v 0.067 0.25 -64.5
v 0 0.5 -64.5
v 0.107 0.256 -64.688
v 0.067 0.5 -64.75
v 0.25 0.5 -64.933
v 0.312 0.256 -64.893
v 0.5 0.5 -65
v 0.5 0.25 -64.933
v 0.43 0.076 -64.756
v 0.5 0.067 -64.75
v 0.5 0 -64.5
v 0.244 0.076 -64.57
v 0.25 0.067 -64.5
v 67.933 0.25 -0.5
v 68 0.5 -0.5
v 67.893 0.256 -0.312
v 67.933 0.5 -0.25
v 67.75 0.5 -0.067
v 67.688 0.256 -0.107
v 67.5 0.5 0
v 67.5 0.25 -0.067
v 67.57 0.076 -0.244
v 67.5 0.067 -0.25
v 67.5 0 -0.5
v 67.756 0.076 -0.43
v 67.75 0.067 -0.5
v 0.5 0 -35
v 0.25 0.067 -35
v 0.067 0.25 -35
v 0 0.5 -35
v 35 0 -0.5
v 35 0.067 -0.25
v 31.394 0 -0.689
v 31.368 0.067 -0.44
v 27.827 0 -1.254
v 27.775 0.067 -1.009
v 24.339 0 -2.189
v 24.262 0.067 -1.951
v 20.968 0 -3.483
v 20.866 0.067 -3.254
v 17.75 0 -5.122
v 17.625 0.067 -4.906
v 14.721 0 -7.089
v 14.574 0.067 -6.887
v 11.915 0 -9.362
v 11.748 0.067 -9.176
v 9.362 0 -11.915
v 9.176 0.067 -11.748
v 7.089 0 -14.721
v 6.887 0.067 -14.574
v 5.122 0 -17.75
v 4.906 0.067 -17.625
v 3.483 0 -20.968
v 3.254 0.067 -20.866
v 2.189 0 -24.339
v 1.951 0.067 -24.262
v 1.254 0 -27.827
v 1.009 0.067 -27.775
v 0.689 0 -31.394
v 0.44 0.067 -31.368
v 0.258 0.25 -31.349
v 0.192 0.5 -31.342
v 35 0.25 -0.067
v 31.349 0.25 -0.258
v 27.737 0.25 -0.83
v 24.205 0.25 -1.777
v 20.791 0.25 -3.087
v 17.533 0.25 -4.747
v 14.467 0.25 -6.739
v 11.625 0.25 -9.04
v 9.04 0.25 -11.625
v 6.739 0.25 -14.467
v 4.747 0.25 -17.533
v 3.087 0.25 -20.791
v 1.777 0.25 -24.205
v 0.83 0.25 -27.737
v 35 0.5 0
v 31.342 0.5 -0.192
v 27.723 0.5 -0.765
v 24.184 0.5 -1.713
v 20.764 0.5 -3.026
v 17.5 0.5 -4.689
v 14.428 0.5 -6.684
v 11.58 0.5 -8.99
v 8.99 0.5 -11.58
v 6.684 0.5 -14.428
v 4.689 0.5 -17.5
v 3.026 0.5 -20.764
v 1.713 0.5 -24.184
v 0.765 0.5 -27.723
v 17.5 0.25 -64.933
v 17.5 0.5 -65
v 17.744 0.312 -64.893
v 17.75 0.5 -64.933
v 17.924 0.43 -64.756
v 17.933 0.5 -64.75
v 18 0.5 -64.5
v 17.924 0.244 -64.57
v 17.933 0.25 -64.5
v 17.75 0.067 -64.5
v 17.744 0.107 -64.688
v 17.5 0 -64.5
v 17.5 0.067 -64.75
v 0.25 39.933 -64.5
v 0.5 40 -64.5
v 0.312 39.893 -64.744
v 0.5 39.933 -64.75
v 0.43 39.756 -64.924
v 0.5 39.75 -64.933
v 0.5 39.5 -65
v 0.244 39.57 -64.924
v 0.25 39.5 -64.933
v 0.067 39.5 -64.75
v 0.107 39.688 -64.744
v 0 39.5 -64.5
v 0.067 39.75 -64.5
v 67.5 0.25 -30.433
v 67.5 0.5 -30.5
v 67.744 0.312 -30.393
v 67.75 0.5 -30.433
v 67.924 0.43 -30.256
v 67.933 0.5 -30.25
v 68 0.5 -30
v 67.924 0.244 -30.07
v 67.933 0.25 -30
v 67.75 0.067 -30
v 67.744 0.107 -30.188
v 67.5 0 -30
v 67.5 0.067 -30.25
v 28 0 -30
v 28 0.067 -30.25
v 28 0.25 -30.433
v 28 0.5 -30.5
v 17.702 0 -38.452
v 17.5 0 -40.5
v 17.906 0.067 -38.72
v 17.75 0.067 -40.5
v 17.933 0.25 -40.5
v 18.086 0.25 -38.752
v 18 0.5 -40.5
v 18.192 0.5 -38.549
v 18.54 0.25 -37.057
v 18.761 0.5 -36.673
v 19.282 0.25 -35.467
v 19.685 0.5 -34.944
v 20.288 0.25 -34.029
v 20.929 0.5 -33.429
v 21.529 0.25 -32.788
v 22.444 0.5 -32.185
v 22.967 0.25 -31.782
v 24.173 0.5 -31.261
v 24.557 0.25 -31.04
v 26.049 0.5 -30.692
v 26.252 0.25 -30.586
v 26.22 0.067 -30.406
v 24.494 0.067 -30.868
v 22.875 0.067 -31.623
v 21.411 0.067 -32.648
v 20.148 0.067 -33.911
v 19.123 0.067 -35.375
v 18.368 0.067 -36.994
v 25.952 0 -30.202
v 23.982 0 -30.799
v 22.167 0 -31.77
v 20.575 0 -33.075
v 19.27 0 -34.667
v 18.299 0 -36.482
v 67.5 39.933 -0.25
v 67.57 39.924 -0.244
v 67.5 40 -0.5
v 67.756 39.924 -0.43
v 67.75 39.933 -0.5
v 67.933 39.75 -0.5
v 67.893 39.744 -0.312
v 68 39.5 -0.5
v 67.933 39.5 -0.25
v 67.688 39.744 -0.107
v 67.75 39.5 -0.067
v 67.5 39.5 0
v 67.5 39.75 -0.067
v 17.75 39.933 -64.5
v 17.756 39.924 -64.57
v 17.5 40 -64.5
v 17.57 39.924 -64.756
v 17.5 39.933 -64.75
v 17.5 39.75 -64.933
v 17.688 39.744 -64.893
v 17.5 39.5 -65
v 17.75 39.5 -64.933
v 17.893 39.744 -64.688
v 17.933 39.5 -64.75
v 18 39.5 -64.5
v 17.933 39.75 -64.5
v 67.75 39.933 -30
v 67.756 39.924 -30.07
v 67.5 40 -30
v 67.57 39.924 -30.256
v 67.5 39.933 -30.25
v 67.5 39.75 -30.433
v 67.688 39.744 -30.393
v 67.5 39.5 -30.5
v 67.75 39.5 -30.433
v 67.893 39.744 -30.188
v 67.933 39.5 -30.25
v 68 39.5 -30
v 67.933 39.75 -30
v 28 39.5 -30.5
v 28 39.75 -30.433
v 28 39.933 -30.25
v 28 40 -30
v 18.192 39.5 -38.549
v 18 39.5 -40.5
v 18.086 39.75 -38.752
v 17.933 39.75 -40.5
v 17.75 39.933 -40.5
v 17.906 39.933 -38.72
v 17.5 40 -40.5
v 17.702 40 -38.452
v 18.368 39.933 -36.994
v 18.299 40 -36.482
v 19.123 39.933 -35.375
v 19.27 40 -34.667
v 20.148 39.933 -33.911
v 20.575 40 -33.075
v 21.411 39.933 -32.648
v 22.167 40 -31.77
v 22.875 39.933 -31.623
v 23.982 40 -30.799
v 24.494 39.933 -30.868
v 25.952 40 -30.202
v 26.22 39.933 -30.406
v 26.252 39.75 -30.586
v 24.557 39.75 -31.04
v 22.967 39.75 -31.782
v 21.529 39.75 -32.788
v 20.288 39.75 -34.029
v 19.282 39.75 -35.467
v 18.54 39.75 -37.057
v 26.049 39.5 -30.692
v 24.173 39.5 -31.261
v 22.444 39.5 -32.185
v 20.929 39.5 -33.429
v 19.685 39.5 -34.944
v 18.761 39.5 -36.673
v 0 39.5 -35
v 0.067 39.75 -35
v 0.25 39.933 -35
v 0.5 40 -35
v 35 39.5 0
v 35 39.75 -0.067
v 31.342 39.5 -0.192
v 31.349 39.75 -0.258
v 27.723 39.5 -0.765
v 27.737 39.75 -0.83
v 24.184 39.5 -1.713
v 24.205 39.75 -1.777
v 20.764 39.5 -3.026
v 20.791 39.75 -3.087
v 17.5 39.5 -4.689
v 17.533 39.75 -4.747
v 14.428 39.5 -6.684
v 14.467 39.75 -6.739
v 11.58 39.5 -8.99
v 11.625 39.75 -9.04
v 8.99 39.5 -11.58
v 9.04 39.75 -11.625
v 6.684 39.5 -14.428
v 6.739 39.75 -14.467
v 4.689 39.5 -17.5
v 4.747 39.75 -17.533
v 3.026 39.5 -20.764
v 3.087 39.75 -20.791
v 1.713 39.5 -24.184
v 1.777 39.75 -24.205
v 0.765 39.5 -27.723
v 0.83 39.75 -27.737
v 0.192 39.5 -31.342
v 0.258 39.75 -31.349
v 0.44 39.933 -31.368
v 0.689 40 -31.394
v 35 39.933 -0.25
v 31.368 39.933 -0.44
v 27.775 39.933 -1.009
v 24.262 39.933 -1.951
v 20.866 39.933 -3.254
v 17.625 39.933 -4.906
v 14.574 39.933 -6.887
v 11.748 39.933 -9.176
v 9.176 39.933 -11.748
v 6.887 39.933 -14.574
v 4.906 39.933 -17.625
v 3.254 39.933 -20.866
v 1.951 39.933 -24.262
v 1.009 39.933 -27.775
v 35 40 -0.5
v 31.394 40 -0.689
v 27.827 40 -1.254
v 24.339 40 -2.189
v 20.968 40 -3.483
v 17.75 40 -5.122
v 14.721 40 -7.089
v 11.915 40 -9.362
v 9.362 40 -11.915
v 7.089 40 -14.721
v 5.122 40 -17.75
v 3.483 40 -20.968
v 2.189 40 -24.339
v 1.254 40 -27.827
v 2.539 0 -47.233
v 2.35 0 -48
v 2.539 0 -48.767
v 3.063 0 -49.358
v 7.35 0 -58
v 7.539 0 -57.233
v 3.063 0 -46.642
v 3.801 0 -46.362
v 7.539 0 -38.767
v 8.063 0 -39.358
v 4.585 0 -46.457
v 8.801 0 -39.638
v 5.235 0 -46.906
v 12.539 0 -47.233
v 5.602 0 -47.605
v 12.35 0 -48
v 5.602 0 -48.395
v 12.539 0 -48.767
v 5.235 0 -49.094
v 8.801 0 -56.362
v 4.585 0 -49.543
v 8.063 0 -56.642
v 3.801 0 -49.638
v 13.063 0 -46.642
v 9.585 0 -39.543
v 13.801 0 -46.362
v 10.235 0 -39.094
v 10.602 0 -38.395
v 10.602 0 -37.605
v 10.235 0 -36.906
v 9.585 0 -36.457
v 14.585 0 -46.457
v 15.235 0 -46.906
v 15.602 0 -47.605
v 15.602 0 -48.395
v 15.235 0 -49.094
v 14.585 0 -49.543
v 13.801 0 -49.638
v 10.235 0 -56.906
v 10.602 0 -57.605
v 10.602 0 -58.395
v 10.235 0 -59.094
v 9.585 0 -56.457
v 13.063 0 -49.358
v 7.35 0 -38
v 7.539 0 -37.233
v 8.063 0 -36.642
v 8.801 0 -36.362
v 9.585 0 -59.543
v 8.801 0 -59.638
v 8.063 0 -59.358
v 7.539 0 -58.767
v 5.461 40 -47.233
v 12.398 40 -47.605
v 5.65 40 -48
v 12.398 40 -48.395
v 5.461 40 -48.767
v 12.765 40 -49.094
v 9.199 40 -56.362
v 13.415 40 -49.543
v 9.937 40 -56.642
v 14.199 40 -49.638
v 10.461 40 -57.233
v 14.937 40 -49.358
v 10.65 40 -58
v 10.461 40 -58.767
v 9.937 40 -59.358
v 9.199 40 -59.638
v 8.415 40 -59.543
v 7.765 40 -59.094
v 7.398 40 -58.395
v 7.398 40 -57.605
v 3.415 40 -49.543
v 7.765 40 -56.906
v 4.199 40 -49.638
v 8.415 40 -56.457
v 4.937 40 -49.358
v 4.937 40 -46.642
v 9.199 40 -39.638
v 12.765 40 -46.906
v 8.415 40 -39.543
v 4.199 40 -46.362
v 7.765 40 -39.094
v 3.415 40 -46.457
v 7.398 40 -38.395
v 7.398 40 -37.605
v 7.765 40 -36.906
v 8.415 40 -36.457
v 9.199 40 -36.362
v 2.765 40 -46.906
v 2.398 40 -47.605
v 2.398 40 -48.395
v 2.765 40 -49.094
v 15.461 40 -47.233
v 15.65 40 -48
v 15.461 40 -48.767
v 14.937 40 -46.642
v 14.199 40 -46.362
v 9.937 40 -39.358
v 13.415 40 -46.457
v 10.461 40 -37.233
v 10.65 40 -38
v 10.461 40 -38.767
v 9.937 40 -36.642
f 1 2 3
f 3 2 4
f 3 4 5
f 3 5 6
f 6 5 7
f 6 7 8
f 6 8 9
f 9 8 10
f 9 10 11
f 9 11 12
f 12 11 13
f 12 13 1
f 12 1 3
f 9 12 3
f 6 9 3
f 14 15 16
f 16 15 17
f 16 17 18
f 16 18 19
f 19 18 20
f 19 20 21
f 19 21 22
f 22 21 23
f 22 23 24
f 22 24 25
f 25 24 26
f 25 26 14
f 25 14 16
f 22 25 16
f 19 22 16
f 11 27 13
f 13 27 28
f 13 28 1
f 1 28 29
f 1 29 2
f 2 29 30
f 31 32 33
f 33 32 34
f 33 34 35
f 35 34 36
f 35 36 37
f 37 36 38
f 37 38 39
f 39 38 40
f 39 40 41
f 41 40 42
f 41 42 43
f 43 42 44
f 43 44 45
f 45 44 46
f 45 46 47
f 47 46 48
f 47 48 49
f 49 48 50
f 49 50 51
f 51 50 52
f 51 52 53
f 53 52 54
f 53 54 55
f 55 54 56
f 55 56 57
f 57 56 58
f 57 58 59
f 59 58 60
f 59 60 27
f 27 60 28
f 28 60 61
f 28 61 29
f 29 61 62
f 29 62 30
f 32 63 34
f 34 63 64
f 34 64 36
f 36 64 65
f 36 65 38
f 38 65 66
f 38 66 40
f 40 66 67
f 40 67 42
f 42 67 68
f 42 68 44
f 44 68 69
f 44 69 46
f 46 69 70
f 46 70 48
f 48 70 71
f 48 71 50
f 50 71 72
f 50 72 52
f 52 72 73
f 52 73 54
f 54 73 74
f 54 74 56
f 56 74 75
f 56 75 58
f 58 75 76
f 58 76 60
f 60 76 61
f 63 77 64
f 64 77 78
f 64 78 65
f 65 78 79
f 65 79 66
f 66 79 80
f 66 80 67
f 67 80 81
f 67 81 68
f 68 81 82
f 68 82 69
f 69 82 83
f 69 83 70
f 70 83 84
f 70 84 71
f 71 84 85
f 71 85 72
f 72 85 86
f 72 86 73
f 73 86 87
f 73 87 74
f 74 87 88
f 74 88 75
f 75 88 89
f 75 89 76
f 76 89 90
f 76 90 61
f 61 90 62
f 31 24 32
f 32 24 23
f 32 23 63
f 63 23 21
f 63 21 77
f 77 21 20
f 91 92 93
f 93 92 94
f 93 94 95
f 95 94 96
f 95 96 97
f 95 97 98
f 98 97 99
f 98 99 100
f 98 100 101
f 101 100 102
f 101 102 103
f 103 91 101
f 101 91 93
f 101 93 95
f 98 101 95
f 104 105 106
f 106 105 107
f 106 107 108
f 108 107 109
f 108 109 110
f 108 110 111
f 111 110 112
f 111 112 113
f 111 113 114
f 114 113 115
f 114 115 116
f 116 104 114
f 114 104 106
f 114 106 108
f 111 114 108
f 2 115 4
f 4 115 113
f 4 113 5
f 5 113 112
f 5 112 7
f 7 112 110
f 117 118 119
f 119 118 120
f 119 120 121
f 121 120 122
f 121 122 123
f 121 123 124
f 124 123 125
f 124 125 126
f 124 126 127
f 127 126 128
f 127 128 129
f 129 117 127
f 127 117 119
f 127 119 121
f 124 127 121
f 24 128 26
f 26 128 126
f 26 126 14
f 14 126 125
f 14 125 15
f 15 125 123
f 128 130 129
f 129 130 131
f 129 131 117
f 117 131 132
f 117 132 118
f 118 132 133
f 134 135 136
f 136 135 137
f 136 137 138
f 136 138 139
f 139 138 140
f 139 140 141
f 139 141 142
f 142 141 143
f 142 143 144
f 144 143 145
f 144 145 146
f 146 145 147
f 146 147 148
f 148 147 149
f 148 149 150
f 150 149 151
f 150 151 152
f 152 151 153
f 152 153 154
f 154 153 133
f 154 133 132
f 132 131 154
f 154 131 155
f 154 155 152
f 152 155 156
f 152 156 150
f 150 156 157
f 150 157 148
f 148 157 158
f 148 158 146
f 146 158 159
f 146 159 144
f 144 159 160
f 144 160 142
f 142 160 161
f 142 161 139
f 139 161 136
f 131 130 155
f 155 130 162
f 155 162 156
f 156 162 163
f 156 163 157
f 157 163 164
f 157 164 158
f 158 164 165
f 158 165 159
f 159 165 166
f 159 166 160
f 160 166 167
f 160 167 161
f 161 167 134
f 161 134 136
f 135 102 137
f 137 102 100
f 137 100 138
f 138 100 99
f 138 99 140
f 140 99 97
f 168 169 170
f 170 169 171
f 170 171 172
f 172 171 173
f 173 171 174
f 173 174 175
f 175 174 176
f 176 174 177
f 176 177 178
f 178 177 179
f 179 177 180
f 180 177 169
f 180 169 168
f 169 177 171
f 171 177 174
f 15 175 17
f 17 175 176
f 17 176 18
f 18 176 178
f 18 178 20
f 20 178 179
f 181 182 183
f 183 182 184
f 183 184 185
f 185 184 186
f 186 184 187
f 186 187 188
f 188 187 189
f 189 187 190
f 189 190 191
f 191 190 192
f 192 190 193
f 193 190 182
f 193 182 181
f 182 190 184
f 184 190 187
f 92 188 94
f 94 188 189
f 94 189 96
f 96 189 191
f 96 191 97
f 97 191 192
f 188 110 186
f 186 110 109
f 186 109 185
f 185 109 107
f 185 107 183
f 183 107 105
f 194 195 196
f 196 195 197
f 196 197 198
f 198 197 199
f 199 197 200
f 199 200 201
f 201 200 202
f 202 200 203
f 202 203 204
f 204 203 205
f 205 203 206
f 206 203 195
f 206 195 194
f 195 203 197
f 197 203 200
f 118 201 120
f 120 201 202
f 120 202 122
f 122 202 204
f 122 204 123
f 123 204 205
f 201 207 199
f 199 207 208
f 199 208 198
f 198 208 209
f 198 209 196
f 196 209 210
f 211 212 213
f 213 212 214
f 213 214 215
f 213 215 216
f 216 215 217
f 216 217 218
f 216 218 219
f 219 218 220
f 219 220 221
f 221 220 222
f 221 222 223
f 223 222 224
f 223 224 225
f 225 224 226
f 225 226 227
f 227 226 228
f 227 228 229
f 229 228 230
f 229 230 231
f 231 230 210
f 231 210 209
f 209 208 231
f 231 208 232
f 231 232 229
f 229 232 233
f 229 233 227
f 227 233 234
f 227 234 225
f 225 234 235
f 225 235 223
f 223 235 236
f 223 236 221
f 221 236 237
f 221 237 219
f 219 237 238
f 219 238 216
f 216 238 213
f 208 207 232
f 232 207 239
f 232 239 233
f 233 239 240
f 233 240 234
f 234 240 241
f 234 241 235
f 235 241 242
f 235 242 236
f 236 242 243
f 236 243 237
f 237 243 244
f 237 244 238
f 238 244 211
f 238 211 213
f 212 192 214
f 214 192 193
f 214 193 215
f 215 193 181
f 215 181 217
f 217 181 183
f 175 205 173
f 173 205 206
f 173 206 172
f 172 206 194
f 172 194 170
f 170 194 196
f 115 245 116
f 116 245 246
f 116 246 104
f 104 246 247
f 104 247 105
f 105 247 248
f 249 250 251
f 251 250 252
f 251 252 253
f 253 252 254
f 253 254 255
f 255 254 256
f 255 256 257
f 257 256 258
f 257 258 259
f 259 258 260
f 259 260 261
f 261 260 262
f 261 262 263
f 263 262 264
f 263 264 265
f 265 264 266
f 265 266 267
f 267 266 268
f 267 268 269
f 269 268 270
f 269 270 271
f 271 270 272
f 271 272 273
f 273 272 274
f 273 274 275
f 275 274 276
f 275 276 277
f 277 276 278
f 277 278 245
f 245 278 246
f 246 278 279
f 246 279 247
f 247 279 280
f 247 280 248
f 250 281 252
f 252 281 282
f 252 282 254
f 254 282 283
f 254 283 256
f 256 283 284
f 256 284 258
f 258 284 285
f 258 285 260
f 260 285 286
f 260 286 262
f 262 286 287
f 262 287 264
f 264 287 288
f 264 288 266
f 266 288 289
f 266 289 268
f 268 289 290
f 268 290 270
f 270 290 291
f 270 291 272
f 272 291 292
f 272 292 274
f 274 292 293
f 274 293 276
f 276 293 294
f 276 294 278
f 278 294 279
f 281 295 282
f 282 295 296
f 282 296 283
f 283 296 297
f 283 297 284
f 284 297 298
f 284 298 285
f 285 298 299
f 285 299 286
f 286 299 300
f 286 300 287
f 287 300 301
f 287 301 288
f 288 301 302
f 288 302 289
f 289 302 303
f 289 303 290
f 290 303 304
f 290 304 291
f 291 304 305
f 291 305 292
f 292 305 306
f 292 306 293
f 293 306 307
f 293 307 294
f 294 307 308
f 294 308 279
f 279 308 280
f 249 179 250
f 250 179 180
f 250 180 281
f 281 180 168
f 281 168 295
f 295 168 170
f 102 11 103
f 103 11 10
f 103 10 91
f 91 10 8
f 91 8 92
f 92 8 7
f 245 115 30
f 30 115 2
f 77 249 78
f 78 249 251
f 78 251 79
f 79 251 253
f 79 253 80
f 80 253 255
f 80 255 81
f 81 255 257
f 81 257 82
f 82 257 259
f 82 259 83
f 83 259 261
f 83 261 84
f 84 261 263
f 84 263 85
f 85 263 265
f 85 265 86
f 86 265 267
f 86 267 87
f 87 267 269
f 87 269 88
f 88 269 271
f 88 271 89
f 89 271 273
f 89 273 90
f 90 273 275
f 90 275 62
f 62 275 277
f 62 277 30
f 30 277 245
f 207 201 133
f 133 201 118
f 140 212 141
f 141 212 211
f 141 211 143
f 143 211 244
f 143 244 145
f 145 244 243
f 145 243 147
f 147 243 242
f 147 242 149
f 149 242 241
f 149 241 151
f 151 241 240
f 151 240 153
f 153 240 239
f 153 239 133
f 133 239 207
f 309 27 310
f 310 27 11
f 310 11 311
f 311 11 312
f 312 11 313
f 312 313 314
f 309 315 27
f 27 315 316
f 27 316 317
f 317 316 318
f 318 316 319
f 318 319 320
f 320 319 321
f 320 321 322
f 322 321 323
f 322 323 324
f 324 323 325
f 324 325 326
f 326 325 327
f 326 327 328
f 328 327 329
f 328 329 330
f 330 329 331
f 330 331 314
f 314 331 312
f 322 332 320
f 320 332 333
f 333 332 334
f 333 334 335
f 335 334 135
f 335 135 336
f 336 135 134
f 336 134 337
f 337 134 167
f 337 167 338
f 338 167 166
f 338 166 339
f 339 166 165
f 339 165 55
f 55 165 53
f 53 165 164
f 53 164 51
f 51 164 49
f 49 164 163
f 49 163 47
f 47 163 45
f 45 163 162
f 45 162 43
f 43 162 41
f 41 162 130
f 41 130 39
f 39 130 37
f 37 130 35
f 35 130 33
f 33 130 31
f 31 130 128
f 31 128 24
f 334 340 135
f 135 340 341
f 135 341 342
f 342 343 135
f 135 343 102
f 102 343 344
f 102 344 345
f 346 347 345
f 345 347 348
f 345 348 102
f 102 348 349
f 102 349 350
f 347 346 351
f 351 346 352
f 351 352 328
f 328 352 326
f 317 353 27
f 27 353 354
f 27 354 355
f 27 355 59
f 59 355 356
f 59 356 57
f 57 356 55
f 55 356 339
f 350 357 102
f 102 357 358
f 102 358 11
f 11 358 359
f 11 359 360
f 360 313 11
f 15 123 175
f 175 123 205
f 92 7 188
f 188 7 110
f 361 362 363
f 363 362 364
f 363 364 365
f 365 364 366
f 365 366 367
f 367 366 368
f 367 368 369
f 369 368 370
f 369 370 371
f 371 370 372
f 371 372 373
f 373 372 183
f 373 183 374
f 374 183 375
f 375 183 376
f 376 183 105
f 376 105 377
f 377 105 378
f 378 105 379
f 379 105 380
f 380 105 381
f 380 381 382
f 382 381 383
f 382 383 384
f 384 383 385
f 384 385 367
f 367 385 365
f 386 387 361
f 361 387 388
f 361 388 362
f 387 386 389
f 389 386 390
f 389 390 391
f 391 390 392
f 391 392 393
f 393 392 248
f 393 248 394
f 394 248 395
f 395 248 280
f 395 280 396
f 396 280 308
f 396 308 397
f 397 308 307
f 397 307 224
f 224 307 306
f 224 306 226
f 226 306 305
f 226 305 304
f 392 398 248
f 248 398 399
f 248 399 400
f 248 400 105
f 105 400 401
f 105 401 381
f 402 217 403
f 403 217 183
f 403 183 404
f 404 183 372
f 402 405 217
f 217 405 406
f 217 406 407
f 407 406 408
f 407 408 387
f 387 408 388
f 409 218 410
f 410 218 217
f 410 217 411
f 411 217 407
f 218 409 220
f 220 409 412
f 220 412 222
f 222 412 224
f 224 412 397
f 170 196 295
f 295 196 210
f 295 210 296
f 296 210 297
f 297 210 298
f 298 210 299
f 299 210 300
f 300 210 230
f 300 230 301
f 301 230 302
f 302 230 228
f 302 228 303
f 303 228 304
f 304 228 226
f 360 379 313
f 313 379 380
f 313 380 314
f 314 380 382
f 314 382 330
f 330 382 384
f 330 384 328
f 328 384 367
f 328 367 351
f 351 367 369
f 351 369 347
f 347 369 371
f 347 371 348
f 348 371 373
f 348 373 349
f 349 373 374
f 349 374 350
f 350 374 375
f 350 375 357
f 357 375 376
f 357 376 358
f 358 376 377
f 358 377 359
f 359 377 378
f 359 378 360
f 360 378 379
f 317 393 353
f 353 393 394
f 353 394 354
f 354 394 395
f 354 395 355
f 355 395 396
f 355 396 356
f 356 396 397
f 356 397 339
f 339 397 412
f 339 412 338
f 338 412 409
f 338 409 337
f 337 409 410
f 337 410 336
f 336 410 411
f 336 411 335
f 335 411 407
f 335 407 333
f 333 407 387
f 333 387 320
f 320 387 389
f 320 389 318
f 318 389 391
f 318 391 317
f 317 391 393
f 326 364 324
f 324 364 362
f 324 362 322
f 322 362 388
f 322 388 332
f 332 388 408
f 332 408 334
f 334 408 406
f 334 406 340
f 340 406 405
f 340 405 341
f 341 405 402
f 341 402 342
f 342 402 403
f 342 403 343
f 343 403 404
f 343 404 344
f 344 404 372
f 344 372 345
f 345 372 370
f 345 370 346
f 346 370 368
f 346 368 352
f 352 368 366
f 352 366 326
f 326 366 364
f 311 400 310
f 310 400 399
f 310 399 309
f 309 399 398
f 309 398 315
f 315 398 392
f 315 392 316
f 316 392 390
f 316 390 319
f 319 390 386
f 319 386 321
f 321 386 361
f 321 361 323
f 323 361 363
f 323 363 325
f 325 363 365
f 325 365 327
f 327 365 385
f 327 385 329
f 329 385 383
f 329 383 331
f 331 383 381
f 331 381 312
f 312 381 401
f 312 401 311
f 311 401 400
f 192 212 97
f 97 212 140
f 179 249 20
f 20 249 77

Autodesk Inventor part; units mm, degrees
ref_plane "YZ Plane" through (0, 0, 0) normal (1, 0, 0) x (0, 1, 0)
ref_plane "XZ Plane" through (0, 0, 0) normal (0, 1, 0) x (-1, 0, 0)
ref_plane "XY Plane" through (0, 0, 0) normal (0, 0, 1) x (1, 0, 0)
sketch "スケッチ2" plane through (0, 0, 0) normal (0, 1, 0) x (-1, 0, 0)
  line L0 (-35, 0) -> (-18, 0)
  line L1 (-18, -40.5) -> (-18, -65)
  line L2 (-18, -65) -> (0, -65)
  line L3 (0, -65) -> (0, -35)
  line L4 (-18, 0) -> (-68, 0)
  line L5 (-68, 0) -> (-68, -30.5)
  line L6 (-68, -30.5) -> (-28, -30.5)
  line L7 (-18, -30.5) -> (-18, 0)
  arc A0 (0, -35) -> (-35, 0) centre (-35, -35) ccw
  arc A1 (-18, -40.5) -> (-28, -30.5) centre (-28, -40.5) ccw
  point P0 (0, 0)
  point P1 (-38, -10)
  point P2 (-35, 0)
  dimension "d0" = 18
  dimension "d1" = 65
  dimension "d2" = 50
  dimension "d3" = 30.5
  dimension "d18" = 35
  dimension "d19" = 10
extrude "押し出し1" add sketch "スケッチ2" along normal blind 40 contours A0 L3 L2 L1 A1 L6 L5 L4
sketch "スケッチ3" plane through (0, 40, 0) normal (0, 1, 0) x (1, 0, 0)
  line L0 (0, 65) -> (0, 0) projected
  line L1 (18, 65) -> (0, 65) projected
  line L2 (14, 48) -> (0, 48) construction
  line L3 (18, 40.5) -> (18, 65) construction
  line L4 (18, 48) -> (0, 48) construction
  line L5 (9, 65) -> (9, 37.3061) construction
  point P0 (4, 48)
  point P1 (0, 32.5)
  point P2 (9, 38)
  point P3 (9, 58)
  point P4 (9, 48)
  dimension "d6" = 4
  dimension "d8" = 17
  dimension "d9" = 17
  dimension "d36" = 10
  dimension "d37" = 10
  dimension "d38" = 4
hole "穴1" at (4, 40, -48) at (14, 40, -48) at (9, 40, -38) at (9, 40, -58) direction (0, -1, 0) diameter 3.3 end through all
fillet "フィレット1" radius 0.5 14 edges at (48, 40, -30.5) (68, 40, -15.25) (0, 40, -50) (18, 40, -52.75) (9, 40, -65) (18, 20, -65) (18, 0, -52.75) (48, 0, -30.5) (68, 20, -30.5) (68, 20, 0) (68, 0, -15.25) (0, 0, -50) (9, 0, -65) (0, 20, -65)
sketch "スケッチ5" plane through (0, 40, 0) normal (0, 1, 0) x (1, 0, 0)
  line L0 (17.5, 64.5) -> (0.5, 64.5) projected
  line L1 (67.5, 30.5) -> (28, 30.5) projected
  line L2 (17.5, 64.5) -> (27.5, 64.5)
  line L3 (27.5, 64.5) -> (27.5, 30.5)
  line L4 (27.5, 30.5) -> (17.5, 30.5)
  line L5 (17.5, 30.5) -> (17.5, 64.5)
  line L6 (20.2, 33.7051) -> (20.2, 61.147) construction
  circle A0 centre (14, 48) radius 1.65 construction
  point P0 (0, 0)
  point P1 (20.2, 37.5)
  point P2 (20.2, 58.5)
  dimension "d20" = 6.2
  dimension "d21" = 10
  dimension "d22" = 10.5
  dimension "d23" = 10.5
extrude "押し出し2" [suppressed]
sketch "スケッチ6" plane through (0, 40, 0) normal (0, 1, 0) x (1, 0, 0)
  line L0 (20.2, 39.1303) -> (20.2, 62.5) construction
  line L1 (27.5, 62.5) -> (17.5, 62.5) construction
  circle A0 centre (14, 48) radius 1.65 construction
  point P0 (0, 0)
  point P1 (20.2, 37.5)
  point P2 (20.2, 58.5)
  dimension "d26" = 6.2
  dimension "d27" = 10.5
  dimension "d28" = 10.5
hole "穴2" [suppressed]
properties part number "elbow_stopper" material "ABS プラスチック"
